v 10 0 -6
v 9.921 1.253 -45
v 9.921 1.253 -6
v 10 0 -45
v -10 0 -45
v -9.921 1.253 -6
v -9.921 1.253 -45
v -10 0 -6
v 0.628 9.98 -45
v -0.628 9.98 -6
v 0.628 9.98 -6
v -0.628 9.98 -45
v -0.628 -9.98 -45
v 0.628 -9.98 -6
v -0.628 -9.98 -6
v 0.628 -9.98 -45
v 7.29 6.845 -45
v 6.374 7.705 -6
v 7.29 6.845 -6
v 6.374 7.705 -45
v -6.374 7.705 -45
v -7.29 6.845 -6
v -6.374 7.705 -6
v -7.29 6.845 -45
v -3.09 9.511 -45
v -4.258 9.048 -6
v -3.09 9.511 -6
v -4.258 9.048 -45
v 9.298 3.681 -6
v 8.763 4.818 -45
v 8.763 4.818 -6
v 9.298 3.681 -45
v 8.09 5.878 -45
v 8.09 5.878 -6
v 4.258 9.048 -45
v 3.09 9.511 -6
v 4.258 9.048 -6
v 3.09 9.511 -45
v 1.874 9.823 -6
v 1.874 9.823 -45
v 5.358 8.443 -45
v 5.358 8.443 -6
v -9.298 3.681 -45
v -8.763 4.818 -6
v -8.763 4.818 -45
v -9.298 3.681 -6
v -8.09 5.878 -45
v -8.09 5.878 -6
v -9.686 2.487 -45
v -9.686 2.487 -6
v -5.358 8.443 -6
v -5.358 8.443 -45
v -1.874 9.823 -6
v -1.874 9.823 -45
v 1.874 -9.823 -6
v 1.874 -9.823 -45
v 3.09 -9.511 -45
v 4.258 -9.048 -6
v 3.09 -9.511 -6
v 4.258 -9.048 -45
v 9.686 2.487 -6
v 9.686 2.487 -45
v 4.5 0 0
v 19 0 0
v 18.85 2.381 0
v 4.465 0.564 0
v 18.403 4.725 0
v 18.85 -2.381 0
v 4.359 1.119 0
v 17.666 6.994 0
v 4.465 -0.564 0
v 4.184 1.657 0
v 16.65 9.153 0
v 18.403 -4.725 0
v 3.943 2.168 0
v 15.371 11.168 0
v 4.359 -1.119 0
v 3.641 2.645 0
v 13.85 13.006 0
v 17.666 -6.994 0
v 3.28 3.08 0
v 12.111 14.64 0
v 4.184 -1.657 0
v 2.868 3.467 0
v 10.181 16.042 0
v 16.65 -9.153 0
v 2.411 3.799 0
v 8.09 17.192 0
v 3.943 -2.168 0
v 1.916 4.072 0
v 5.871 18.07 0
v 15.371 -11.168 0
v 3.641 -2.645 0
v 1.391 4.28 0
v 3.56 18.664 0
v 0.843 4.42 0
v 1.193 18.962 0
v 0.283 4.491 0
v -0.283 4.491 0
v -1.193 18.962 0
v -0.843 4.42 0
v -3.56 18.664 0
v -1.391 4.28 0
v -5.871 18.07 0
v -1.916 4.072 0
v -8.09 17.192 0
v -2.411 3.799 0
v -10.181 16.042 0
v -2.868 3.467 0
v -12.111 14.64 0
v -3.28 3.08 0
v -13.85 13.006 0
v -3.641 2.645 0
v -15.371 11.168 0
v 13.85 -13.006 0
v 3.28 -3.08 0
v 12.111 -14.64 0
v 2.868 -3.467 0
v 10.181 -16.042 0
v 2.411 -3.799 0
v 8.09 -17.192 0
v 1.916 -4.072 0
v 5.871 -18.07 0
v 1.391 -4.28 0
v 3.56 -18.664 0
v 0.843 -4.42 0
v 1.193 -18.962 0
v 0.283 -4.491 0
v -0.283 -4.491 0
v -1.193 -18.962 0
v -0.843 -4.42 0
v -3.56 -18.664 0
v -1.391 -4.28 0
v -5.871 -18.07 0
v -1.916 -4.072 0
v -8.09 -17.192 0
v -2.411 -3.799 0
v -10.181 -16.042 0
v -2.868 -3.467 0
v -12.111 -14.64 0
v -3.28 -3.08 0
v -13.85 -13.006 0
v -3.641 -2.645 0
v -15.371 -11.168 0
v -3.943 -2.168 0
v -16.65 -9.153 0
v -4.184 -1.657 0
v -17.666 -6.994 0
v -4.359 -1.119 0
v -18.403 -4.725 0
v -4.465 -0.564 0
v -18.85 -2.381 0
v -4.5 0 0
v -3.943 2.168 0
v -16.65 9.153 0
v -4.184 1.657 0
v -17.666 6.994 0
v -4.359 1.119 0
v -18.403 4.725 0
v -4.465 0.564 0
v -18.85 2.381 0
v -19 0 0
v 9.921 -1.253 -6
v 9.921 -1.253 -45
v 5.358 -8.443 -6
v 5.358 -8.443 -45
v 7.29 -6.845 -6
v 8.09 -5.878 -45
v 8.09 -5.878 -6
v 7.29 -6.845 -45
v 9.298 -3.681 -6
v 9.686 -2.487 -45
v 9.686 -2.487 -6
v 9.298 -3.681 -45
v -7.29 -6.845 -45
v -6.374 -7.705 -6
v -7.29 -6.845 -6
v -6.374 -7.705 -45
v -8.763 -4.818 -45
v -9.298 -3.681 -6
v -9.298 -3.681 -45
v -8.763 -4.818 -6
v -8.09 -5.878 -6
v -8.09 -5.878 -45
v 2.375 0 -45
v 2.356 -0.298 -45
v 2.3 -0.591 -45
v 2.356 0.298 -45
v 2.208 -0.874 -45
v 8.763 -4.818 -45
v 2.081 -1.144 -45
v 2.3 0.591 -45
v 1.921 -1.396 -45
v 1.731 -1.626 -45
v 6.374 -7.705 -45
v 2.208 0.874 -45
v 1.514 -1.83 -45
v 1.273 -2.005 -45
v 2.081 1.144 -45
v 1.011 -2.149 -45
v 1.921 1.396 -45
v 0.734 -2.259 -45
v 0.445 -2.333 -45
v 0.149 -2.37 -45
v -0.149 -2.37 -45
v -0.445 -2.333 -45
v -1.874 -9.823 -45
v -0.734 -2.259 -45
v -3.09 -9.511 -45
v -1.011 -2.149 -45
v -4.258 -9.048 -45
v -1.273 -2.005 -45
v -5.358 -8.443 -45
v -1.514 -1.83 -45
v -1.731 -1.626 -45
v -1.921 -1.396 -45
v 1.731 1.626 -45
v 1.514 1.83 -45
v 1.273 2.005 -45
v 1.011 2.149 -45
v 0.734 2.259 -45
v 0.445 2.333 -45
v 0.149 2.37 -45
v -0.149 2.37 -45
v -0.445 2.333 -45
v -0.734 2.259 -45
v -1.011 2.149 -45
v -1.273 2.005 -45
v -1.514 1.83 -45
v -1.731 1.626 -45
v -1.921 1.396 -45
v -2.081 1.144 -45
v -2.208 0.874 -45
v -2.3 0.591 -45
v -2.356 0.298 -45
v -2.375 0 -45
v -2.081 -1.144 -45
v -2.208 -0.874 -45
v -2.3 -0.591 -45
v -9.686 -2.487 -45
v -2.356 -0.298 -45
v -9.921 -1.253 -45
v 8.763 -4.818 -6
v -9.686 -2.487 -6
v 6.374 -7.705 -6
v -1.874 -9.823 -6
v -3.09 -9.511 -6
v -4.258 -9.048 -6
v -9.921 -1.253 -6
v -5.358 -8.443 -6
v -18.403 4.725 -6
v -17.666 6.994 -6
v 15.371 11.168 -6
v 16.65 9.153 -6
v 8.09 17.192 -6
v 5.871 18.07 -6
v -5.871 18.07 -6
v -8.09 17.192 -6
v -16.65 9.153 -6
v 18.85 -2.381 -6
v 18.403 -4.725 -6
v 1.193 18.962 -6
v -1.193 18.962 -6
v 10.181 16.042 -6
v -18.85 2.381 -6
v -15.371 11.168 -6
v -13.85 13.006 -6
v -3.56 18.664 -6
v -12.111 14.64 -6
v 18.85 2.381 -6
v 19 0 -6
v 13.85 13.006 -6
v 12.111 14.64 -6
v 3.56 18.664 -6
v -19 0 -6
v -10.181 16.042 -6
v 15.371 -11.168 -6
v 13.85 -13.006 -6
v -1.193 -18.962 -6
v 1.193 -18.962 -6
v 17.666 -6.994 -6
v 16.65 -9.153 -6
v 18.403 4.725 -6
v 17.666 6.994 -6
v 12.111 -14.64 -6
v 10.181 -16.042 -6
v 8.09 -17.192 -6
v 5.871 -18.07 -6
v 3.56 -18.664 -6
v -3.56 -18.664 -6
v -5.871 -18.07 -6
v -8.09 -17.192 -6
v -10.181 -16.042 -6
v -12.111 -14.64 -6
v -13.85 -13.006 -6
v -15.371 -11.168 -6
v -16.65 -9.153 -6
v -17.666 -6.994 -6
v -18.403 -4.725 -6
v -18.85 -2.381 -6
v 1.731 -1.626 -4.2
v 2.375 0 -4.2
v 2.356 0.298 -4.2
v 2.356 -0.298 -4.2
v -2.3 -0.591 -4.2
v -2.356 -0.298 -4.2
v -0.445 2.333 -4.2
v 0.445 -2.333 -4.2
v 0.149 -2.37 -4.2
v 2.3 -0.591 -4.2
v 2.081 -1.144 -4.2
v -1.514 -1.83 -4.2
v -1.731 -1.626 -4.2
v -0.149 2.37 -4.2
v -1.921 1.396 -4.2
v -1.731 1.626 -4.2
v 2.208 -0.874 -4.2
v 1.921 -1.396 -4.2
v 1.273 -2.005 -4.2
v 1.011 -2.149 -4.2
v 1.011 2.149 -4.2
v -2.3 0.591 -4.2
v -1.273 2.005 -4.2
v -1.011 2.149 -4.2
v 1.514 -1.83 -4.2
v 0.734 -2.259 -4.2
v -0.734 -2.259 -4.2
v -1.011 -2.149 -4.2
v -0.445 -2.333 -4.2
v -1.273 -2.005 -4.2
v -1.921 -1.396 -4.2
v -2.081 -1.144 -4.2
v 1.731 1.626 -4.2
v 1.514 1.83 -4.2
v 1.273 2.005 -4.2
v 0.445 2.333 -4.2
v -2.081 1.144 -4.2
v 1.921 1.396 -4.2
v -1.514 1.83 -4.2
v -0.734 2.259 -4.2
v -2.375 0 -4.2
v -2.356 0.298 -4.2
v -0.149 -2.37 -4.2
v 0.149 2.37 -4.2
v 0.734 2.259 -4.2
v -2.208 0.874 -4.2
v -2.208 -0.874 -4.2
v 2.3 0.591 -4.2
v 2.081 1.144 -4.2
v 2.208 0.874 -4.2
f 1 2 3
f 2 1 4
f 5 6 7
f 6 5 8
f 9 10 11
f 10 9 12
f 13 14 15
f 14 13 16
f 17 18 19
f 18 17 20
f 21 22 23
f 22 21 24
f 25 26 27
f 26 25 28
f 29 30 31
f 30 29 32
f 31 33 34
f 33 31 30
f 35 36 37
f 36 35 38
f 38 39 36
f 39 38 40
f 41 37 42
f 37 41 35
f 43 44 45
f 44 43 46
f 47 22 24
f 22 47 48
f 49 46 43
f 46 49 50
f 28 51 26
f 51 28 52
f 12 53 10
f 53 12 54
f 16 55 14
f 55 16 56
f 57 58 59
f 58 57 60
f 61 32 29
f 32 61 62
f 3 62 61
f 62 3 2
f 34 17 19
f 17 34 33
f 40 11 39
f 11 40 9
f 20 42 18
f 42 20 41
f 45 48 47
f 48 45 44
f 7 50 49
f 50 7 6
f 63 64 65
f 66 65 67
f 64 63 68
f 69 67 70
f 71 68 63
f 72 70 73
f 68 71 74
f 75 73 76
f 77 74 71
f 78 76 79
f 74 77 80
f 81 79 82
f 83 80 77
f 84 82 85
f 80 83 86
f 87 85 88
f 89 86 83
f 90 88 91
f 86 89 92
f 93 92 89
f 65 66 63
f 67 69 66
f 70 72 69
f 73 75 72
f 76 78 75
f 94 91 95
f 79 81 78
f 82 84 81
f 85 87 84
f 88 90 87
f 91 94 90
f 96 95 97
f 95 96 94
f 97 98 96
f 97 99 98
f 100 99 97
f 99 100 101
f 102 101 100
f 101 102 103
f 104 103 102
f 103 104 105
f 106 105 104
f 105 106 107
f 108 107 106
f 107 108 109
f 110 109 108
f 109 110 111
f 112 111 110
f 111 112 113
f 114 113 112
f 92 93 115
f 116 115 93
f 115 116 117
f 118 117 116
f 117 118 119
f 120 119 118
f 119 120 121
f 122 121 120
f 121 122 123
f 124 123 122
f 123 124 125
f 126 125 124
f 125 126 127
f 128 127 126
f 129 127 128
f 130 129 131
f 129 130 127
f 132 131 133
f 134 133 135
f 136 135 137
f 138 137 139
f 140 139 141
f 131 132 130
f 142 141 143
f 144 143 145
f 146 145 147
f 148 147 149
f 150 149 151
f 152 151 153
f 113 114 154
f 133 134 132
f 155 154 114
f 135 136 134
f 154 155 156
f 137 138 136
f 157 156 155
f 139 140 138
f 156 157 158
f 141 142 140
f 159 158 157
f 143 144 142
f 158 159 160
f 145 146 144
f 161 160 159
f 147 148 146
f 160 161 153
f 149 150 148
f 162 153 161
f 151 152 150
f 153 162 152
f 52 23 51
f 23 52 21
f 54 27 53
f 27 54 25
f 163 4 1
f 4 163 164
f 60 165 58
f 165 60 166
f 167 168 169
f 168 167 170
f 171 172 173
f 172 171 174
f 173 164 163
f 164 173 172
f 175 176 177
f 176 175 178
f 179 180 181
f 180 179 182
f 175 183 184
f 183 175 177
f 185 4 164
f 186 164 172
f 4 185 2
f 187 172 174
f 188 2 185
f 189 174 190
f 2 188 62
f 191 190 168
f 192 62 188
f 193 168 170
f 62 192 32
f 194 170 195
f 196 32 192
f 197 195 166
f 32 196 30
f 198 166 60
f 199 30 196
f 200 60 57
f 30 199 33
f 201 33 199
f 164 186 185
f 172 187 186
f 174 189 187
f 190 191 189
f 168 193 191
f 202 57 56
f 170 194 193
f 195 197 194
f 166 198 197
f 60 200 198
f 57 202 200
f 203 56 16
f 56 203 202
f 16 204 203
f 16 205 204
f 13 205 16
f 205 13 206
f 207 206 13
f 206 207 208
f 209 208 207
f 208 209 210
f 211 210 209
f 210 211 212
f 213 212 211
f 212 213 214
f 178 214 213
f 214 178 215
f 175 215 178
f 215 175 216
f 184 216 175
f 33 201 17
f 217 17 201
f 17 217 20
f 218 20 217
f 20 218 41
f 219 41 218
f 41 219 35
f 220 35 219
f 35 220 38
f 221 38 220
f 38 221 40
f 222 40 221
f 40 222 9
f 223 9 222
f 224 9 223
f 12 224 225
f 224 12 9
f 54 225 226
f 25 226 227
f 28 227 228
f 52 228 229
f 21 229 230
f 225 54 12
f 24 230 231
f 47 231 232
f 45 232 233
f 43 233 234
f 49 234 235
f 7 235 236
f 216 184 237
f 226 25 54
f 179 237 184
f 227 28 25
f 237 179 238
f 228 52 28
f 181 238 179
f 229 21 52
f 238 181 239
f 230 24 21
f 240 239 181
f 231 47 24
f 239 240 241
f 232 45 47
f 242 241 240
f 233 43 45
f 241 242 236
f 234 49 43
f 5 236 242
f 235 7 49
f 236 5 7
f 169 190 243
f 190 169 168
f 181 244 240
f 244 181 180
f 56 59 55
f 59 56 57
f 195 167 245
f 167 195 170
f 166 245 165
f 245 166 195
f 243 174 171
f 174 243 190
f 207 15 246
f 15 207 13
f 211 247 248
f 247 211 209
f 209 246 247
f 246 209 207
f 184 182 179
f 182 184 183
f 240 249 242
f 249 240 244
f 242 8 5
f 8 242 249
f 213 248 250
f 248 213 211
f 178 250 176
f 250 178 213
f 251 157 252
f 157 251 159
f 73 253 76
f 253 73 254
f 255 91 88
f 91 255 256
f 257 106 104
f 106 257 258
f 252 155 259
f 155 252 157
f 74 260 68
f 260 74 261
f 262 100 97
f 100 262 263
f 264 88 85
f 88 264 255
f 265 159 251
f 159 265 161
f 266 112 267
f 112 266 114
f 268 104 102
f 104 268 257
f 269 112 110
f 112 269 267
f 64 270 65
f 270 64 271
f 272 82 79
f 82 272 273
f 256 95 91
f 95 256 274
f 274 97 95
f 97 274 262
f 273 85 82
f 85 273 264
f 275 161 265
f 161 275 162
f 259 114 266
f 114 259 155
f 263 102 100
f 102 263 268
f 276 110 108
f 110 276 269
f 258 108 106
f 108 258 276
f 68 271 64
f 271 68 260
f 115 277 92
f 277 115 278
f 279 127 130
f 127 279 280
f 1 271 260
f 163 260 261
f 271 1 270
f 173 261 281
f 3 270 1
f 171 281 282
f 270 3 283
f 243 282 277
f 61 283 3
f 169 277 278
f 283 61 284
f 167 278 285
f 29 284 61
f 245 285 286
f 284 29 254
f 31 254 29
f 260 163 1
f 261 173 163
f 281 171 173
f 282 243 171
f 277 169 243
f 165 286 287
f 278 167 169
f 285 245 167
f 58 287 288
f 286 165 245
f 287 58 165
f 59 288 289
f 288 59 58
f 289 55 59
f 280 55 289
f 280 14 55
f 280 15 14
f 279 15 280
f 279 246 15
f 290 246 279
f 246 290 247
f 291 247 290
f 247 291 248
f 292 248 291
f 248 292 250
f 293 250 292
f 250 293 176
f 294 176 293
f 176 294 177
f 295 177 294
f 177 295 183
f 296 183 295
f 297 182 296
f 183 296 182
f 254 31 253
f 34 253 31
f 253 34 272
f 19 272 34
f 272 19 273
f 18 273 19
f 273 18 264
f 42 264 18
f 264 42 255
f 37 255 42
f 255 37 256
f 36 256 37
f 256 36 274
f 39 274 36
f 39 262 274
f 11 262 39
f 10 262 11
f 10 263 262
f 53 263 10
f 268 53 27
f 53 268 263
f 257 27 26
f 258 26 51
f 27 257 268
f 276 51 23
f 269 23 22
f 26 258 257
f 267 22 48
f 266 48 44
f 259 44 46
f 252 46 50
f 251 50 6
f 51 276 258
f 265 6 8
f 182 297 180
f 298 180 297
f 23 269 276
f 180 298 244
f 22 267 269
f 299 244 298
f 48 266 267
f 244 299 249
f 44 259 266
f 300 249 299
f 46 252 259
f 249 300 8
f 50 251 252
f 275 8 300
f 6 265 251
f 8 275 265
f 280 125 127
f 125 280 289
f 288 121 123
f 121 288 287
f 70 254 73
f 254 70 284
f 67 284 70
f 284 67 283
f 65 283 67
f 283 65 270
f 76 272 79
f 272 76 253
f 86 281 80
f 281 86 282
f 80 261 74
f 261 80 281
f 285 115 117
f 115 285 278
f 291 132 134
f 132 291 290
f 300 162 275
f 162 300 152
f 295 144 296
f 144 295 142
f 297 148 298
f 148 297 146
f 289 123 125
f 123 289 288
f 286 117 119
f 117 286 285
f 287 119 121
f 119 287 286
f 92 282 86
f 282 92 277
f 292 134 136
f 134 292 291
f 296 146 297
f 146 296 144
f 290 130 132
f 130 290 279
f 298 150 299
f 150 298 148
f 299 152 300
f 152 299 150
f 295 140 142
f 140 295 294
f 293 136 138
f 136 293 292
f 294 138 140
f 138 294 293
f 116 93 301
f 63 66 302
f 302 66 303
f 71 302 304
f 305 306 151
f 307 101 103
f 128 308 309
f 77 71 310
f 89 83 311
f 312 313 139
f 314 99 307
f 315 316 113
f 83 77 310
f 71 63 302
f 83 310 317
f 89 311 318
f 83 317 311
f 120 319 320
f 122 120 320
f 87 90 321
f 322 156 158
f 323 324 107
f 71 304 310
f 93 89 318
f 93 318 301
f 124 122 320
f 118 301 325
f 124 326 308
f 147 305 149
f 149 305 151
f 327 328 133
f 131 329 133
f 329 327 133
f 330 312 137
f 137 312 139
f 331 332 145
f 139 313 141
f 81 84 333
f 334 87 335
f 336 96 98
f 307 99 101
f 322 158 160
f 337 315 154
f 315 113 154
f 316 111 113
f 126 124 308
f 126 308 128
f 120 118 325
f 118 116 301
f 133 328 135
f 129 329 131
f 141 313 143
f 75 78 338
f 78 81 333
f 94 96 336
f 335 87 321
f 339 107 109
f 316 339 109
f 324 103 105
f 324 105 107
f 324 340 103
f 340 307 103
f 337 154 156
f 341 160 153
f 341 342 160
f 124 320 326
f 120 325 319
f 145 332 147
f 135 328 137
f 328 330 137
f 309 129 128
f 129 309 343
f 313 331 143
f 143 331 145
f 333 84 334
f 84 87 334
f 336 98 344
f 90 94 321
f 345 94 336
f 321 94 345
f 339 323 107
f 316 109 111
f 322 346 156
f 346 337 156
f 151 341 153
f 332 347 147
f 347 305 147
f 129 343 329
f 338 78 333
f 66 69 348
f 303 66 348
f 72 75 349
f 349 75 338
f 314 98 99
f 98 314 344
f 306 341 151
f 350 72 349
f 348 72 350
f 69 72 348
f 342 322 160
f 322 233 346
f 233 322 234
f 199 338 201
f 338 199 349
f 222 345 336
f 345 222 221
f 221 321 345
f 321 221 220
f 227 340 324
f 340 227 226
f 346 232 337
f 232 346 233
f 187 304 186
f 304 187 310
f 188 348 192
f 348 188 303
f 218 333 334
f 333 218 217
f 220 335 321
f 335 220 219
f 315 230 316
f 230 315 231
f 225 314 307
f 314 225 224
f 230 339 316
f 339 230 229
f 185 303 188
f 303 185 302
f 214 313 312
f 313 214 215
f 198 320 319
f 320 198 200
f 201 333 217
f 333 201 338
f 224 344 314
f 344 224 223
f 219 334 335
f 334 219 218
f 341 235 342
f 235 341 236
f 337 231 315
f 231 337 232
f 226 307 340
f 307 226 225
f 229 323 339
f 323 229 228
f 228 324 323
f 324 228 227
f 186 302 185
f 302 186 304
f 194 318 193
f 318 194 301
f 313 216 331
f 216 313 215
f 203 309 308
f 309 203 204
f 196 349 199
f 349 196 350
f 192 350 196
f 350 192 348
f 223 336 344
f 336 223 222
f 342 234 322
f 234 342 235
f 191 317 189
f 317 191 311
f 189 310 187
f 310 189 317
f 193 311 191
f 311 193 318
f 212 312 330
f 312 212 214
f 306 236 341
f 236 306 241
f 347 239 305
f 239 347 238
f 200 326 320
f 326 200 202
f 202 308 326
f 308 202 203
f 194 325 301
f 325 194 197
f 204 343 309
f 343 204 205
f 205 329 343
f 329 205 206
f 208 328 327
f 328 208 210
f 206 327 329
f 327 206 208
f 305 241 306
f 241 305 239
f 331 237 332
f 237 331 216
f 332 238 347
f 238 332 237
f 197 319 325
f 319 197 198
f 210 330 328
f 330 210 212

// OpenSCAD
$fn = 50;


difference() {
	union() {
		translate(v = [0, 0, -45.0000000000]) {
			cylinder(h = 45, r = 10.0000000000);
		}
		translate(v = [0, 0, -6.0000000000]) {
			cylinder(h = 6, r = 19.0000000000);
		}
	}
	union() {
		translate(v = [0, 0, 0]) {
			rotate(a = [0, 0, 0]) {
				difference() {
					union() {
						#translate(v = [0, 0, -45.0000000000]) {
							cylinder(h = 45, r = 2.2500000000);
						}
						#translate(v = [0, 0, -4.2000000000]) {
							cylinder(h = 4.2000000000, r1 = 2.3750000000, r2 = 4.5000000000);
						}
						#translate(v = [0, 0, -45.0000000000]) {
							cylinder(h = 45, r = 2.3750000000);
						}
						#translate(v = [0, 0, -45.0000000000]) {
							cylinder(h = 45, r = 2.2500000000);
						}
					}
					union();
				}
			}
		}
	}
}
